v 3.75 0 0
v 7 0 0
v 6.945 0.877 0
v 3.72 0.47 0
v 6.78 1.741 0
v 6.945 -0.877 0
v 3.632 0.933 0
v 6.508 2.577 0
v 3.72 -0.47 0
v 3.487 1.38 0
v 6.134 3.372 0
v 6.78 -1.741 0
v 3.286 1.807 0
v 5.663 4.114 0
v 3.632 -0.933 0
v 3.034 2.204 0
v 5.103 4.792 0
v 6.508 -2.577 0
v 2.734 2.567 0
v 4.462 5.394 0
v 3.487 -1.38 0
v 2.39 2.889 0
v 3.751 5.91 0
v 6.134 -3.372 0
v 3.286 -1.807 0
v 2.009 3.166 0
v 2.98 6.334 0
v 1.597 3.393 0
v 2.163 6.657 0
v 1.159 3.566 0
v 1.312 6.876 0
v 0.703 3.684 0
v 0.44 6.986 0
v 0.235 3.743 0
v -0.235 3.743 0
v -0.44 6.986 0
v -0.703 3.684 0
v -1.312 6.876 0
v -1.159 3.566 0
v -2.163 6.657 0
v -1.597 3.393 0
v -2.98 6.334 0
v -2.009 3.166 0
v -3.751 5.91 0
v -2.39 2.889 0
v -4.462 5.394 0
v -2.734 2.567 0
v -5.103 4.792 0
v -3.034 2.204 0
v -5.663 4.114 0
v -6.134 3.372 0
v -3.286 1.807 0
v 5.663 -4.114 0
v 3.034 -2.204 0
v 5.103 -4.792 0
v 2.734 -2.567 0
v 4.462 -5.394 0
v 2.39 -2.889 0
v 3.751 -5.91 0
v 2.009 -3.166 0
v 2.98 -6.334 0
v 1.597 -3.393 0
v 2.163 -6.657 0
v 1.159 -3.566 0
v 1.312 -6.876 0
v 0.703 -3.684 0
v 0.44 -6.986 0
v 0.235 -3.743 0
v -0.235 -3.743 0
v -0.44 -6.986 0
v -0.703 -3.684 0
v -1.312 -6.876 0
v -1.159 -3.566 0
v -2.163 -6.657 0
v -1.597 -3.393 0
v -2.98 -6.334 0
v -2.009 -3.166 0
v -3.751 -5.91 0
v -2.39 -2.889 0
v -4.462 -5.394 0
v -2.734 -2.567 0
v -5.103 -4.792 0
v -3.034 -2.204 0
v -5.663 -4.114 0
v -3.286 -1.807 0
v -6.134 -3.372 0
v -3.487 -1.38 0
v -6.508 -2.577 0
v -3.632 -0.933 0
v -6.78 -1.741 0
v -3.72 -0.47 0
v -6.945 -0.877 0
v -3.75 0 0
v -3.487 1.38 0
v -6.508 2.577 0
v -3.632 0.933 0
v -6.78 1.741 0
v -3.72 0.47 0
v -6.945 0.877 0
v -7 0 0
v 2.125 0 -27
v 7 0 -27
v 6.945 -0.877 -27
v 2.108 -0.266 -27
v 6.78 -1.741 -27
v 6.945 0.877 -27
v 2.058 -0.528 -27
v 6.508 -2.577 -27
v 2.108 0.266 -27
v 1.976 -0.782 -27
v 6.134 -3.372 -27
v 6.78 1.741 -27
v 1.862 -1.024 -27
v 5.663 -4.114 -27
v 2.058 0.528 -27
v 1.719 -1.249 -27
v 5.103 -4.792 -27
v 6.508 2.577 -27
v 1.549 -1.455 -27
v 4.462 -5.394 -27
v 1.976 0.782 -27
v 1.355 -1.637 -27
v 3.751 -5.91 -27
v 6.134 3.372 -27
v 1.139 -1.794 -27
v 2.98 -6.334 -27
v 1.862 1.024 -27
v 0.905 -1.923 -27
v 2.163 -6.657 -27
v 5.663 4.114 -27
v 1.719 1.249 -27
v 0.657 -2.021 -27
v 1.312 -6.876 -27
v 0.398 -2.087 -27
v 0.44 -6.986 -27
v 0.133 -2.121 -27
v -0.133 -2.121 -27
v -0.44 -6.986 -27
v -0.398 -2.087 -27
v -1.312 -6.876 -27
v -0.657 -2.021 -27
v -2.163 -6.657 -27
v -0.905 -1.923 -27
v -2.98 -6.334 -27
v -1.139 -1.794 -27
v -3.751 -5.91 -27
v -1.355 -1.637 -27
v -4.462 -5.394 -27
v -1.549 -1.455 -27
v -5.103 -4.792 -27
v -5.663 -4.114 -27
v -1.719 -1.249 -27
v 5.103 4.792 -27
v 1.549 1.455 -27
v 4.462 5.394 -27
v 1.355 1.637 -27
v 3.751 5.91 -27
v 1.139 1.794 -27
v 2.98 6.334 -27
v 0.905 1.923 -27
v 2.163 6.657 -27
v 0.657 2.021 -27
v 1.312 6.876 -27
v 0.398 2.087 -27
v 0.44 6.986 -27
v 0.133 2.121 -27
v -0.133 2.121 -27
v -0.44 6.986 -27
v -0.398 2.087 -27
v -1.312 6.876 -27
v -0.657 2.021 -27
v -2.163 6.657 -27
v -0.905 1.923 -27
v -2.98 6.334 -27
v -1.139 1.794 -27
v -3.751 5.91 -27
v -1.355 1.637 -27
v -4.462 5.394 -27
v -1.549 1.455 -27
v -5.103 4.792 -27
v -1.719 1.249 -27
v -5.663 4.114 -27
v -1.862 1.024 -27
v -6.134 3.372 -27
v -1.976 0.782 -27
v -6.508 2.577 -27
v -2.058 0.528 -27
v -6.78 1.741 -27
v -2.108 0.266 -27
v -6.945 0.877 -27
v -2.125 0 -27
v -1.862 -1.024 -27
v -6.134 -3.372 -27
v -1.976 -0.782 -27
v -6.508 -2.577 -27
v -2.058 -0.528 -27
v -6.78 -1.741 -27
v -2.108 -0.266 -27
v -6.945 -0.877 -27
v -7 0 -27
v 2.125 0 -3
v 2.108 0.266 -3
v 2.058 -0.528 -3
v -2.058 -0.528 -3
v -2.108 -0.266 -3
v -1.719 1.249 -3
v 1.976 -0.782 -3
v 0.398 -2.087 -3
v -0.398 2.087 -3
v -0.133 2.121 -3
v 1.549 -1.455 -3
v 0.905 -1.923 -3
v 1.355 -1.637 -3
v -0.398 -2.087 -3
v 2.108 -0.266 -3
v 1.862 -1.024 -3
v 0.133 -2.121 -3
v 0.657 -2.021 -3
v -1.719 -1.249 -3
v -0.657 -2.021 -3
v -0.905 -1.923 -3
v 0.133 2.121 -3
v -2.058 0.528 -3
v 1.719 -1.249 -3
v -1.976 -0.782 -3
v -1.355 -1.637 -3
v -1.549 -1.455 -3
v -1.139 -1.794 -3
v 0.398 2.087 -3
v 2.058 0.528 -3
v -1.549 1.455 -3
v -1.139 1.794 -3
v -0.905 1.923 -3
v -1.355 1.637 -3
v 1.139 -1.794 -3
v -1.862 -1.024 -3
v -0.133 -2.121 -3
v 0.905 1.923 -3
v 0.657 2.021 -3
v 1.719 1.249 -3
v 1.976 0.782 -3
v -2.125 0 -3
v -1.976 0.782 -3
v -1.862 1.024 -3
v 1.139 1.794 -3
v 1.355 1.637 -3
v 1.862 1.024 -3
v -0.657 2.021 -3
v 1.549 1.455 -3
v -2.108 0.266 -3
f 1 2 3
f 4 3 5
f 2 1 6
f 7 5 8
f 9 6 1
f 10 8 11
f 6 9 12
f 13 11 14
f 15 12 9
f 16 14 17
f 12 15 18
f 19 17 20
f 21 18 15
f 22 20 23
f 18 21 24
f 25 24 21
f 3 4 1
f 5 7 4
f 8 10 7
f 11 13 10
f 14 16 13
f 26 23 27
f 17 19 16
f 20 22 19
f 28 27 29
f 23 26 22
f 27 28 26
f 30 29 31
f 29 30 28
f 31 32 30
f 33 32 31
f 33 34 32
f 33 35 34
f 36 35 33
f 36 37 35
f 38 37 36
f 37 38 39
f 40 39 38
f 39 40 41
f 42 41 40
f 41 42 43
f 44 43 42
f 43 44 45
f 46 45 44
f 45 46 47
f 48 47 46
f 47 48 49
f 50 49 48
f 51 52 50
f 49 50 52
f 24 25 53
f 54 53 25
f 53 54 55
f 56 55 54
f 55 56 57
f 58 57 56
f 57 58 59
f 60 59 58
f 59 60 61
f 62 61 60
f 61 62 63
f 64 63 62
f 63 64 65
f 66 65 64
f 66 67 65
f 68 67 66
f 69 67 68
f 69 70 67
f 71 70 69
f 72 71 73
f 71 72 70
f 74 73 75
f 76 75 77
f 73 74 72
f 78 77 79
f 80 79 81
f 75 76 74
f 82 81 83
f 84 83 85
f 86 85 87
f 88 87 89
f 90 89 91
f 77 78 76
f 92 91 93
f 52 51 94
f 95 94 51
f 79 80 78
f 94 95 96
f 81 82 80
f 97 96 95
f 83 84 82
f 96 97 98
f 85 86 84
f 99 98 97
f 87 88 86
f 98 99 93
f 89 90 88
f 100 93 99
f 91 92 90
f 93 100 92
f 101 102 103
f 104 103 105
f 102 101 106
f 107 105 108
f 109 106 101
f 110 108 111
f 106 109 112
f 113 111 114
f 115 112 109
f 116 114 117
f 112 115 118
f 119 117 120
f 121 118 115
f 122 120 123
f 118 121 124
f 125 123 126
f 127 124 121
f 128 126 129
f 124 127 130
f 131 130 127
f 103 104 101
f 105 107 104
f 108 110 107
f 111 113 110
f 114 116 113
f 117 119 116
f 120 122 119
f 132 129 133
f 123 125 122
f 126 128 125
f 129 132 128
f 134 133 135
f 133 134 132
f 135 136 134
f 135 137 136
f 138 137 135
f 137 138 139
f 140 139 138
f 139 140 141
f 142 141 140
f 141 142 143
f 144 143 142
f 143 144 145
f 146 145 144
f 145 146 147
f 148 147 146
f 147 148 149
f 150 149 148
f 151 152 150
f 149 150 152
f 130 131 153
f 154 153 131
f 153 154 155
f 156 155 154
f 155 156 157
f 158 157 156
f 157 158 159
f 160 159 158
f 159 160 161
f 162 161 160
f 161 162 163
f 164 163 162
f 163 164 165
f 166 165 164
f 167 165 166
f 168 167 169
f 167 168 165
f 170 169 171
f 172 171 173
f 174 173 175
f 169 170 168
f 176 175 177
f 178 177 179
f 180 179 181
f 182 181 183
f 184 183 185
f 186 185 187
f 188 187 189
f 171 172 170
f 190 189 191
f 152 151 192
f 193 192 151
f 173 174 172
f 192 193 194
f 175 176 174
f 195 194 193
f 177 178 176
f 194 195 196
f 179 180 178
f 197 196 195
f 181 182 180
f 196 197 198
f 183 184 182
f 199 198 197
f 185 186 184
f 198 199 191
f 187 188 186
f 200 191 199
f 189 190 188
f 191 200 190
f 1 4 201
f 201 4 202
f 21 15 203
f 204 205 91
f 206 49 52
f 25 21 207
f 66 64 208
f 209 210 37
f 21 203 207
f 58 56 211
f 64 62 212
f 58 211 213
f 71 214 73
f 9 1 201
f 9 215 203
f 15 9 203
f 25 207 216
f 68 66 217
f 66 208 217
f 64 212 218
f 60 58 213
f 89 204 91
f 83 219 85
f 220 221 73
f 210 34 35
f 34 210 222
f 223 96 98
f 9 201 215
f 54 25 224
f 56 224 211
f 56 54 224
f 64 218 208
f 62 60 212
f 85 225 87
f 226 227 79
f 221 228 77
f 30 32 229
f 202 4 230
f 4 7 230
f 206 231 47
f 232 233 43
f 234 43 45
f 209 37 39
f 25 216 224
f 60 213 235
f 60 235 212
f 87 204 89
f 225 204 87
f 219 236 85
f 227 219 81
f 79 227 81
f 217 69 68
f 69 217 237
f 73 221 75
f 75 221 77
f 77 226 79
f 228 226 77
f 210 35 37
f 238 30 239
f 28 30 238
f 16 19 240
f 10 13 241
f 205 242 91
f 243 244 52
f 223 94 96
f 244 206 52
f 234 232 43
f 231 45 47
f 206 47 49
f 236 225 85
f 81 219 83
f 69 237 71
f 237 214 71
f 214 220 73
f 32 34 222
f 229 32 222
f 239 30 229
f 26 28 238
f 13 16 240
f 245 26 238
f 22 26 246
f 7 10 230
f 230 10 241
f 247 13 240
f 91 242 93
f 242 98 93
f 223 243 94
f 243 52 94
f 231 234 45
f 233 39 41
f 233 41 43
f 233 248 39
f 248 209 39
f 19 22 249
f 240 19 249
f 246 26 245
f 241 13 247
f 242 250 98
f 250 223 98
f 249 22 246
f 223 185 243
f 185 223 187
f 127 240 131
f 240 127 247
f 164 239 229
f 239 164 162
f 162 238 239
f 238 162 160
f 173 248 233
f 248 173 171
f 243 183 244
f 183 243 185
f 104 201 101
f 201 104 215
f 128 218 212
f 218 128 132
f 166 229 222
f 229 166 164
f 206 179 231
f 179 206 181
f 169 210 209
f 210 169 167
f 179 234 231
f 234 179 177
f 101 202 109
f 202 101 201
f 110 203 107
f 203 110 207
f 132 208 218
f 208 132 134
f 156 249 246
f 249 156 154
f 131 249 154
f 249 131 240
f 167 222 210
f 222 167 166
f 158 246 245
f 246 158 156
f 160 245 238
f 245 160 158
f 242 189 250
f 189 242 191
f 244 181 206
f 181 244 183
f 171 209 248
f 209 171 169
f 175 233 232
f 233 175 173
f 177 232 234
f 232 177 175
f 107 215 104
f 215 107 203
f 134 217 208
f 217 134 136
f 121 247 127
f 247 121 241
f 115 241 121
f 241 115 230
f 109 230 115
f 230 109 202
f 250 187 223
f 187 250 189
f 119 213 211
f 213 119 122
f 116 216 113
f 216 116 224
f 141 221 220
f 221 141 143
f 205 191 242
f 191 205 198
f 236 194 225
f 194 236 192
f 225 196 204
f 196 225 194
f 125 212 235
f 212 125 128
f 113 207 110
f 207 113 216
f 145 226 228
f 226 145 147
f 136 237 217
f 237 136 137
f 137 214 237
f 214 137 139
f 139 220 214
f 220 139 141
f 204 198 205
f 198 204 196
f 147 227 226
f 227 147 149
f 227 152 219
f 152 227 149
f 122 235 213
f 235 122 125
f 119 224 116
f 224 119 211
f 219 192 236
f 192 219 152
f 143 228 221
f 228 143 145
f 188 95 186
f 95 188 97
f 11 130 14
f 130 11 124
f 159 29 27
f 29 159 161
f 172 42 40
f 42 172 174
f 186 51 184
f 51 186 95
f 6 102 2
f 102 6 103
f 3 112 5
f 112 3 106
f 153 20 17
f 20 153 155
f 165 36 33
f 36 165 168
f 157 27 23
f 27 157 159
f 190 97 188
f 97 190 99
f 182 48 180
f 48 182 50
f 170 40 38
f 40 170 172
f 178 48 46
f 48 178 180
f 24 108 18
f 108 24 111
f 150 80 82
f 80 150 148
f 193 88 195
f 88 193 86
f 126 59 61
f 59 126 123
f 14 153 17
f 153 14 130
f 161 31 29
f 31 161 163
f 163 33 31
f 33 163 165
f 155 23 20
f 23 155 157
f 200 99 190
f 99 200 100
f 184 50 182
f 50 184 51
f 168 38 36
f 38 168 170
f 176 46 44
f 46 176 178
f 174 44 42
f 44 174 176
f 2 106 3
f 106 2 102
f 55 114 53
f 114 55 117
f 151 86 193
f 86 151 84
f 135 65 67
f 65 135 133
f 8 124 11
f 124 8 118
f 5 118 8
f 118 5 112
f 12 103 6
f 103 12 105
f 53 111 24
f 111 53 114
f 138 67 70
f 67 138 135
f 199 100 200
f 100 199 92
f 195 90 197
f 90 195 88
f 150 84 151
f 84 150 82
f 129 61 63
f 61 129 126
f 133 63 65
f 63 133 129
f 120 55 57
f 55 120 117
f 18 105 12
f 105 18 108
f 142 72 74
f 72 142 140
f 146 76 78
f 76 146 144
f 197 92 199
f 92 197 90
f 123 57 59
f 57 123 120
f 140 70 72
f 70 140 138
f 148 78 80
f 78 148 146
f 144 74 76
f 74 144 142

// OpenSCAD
$fn = 50;


difference() {
	union() {
		translate(v = [0, 0, -27.0000000000]) {
			cylinder(h = 27, r = 7.0000000000);
		}
		cylinder(h = 0, r = 17.0000000000);
	}
	union() {
		translate(v = [0, 0, 0]) {
			rotate(a = [0, 0, 0]) {
				difference() {
					union() {
						#translate(v = [0, 0, -27.0000000000]) {
							cylinder(h = 27, r = 2.0000000000);
						}
						#translate(v = [0, 0, -3]) {
							cylinder(h = 3, r1 = 2.1250000000, r2 = 3.7500000000);
						}
						#translate(v = [0, 0, -27.0000000000]) {
							cylinder(h = 27, r = 2.1250000000);
						}
						#translate(v = [0, 0, -27.0000000000]) {
							cylinder(h = 27, r = 2.0000000000);
						}
					}
					union();
				}
			}
		}
	}
}
